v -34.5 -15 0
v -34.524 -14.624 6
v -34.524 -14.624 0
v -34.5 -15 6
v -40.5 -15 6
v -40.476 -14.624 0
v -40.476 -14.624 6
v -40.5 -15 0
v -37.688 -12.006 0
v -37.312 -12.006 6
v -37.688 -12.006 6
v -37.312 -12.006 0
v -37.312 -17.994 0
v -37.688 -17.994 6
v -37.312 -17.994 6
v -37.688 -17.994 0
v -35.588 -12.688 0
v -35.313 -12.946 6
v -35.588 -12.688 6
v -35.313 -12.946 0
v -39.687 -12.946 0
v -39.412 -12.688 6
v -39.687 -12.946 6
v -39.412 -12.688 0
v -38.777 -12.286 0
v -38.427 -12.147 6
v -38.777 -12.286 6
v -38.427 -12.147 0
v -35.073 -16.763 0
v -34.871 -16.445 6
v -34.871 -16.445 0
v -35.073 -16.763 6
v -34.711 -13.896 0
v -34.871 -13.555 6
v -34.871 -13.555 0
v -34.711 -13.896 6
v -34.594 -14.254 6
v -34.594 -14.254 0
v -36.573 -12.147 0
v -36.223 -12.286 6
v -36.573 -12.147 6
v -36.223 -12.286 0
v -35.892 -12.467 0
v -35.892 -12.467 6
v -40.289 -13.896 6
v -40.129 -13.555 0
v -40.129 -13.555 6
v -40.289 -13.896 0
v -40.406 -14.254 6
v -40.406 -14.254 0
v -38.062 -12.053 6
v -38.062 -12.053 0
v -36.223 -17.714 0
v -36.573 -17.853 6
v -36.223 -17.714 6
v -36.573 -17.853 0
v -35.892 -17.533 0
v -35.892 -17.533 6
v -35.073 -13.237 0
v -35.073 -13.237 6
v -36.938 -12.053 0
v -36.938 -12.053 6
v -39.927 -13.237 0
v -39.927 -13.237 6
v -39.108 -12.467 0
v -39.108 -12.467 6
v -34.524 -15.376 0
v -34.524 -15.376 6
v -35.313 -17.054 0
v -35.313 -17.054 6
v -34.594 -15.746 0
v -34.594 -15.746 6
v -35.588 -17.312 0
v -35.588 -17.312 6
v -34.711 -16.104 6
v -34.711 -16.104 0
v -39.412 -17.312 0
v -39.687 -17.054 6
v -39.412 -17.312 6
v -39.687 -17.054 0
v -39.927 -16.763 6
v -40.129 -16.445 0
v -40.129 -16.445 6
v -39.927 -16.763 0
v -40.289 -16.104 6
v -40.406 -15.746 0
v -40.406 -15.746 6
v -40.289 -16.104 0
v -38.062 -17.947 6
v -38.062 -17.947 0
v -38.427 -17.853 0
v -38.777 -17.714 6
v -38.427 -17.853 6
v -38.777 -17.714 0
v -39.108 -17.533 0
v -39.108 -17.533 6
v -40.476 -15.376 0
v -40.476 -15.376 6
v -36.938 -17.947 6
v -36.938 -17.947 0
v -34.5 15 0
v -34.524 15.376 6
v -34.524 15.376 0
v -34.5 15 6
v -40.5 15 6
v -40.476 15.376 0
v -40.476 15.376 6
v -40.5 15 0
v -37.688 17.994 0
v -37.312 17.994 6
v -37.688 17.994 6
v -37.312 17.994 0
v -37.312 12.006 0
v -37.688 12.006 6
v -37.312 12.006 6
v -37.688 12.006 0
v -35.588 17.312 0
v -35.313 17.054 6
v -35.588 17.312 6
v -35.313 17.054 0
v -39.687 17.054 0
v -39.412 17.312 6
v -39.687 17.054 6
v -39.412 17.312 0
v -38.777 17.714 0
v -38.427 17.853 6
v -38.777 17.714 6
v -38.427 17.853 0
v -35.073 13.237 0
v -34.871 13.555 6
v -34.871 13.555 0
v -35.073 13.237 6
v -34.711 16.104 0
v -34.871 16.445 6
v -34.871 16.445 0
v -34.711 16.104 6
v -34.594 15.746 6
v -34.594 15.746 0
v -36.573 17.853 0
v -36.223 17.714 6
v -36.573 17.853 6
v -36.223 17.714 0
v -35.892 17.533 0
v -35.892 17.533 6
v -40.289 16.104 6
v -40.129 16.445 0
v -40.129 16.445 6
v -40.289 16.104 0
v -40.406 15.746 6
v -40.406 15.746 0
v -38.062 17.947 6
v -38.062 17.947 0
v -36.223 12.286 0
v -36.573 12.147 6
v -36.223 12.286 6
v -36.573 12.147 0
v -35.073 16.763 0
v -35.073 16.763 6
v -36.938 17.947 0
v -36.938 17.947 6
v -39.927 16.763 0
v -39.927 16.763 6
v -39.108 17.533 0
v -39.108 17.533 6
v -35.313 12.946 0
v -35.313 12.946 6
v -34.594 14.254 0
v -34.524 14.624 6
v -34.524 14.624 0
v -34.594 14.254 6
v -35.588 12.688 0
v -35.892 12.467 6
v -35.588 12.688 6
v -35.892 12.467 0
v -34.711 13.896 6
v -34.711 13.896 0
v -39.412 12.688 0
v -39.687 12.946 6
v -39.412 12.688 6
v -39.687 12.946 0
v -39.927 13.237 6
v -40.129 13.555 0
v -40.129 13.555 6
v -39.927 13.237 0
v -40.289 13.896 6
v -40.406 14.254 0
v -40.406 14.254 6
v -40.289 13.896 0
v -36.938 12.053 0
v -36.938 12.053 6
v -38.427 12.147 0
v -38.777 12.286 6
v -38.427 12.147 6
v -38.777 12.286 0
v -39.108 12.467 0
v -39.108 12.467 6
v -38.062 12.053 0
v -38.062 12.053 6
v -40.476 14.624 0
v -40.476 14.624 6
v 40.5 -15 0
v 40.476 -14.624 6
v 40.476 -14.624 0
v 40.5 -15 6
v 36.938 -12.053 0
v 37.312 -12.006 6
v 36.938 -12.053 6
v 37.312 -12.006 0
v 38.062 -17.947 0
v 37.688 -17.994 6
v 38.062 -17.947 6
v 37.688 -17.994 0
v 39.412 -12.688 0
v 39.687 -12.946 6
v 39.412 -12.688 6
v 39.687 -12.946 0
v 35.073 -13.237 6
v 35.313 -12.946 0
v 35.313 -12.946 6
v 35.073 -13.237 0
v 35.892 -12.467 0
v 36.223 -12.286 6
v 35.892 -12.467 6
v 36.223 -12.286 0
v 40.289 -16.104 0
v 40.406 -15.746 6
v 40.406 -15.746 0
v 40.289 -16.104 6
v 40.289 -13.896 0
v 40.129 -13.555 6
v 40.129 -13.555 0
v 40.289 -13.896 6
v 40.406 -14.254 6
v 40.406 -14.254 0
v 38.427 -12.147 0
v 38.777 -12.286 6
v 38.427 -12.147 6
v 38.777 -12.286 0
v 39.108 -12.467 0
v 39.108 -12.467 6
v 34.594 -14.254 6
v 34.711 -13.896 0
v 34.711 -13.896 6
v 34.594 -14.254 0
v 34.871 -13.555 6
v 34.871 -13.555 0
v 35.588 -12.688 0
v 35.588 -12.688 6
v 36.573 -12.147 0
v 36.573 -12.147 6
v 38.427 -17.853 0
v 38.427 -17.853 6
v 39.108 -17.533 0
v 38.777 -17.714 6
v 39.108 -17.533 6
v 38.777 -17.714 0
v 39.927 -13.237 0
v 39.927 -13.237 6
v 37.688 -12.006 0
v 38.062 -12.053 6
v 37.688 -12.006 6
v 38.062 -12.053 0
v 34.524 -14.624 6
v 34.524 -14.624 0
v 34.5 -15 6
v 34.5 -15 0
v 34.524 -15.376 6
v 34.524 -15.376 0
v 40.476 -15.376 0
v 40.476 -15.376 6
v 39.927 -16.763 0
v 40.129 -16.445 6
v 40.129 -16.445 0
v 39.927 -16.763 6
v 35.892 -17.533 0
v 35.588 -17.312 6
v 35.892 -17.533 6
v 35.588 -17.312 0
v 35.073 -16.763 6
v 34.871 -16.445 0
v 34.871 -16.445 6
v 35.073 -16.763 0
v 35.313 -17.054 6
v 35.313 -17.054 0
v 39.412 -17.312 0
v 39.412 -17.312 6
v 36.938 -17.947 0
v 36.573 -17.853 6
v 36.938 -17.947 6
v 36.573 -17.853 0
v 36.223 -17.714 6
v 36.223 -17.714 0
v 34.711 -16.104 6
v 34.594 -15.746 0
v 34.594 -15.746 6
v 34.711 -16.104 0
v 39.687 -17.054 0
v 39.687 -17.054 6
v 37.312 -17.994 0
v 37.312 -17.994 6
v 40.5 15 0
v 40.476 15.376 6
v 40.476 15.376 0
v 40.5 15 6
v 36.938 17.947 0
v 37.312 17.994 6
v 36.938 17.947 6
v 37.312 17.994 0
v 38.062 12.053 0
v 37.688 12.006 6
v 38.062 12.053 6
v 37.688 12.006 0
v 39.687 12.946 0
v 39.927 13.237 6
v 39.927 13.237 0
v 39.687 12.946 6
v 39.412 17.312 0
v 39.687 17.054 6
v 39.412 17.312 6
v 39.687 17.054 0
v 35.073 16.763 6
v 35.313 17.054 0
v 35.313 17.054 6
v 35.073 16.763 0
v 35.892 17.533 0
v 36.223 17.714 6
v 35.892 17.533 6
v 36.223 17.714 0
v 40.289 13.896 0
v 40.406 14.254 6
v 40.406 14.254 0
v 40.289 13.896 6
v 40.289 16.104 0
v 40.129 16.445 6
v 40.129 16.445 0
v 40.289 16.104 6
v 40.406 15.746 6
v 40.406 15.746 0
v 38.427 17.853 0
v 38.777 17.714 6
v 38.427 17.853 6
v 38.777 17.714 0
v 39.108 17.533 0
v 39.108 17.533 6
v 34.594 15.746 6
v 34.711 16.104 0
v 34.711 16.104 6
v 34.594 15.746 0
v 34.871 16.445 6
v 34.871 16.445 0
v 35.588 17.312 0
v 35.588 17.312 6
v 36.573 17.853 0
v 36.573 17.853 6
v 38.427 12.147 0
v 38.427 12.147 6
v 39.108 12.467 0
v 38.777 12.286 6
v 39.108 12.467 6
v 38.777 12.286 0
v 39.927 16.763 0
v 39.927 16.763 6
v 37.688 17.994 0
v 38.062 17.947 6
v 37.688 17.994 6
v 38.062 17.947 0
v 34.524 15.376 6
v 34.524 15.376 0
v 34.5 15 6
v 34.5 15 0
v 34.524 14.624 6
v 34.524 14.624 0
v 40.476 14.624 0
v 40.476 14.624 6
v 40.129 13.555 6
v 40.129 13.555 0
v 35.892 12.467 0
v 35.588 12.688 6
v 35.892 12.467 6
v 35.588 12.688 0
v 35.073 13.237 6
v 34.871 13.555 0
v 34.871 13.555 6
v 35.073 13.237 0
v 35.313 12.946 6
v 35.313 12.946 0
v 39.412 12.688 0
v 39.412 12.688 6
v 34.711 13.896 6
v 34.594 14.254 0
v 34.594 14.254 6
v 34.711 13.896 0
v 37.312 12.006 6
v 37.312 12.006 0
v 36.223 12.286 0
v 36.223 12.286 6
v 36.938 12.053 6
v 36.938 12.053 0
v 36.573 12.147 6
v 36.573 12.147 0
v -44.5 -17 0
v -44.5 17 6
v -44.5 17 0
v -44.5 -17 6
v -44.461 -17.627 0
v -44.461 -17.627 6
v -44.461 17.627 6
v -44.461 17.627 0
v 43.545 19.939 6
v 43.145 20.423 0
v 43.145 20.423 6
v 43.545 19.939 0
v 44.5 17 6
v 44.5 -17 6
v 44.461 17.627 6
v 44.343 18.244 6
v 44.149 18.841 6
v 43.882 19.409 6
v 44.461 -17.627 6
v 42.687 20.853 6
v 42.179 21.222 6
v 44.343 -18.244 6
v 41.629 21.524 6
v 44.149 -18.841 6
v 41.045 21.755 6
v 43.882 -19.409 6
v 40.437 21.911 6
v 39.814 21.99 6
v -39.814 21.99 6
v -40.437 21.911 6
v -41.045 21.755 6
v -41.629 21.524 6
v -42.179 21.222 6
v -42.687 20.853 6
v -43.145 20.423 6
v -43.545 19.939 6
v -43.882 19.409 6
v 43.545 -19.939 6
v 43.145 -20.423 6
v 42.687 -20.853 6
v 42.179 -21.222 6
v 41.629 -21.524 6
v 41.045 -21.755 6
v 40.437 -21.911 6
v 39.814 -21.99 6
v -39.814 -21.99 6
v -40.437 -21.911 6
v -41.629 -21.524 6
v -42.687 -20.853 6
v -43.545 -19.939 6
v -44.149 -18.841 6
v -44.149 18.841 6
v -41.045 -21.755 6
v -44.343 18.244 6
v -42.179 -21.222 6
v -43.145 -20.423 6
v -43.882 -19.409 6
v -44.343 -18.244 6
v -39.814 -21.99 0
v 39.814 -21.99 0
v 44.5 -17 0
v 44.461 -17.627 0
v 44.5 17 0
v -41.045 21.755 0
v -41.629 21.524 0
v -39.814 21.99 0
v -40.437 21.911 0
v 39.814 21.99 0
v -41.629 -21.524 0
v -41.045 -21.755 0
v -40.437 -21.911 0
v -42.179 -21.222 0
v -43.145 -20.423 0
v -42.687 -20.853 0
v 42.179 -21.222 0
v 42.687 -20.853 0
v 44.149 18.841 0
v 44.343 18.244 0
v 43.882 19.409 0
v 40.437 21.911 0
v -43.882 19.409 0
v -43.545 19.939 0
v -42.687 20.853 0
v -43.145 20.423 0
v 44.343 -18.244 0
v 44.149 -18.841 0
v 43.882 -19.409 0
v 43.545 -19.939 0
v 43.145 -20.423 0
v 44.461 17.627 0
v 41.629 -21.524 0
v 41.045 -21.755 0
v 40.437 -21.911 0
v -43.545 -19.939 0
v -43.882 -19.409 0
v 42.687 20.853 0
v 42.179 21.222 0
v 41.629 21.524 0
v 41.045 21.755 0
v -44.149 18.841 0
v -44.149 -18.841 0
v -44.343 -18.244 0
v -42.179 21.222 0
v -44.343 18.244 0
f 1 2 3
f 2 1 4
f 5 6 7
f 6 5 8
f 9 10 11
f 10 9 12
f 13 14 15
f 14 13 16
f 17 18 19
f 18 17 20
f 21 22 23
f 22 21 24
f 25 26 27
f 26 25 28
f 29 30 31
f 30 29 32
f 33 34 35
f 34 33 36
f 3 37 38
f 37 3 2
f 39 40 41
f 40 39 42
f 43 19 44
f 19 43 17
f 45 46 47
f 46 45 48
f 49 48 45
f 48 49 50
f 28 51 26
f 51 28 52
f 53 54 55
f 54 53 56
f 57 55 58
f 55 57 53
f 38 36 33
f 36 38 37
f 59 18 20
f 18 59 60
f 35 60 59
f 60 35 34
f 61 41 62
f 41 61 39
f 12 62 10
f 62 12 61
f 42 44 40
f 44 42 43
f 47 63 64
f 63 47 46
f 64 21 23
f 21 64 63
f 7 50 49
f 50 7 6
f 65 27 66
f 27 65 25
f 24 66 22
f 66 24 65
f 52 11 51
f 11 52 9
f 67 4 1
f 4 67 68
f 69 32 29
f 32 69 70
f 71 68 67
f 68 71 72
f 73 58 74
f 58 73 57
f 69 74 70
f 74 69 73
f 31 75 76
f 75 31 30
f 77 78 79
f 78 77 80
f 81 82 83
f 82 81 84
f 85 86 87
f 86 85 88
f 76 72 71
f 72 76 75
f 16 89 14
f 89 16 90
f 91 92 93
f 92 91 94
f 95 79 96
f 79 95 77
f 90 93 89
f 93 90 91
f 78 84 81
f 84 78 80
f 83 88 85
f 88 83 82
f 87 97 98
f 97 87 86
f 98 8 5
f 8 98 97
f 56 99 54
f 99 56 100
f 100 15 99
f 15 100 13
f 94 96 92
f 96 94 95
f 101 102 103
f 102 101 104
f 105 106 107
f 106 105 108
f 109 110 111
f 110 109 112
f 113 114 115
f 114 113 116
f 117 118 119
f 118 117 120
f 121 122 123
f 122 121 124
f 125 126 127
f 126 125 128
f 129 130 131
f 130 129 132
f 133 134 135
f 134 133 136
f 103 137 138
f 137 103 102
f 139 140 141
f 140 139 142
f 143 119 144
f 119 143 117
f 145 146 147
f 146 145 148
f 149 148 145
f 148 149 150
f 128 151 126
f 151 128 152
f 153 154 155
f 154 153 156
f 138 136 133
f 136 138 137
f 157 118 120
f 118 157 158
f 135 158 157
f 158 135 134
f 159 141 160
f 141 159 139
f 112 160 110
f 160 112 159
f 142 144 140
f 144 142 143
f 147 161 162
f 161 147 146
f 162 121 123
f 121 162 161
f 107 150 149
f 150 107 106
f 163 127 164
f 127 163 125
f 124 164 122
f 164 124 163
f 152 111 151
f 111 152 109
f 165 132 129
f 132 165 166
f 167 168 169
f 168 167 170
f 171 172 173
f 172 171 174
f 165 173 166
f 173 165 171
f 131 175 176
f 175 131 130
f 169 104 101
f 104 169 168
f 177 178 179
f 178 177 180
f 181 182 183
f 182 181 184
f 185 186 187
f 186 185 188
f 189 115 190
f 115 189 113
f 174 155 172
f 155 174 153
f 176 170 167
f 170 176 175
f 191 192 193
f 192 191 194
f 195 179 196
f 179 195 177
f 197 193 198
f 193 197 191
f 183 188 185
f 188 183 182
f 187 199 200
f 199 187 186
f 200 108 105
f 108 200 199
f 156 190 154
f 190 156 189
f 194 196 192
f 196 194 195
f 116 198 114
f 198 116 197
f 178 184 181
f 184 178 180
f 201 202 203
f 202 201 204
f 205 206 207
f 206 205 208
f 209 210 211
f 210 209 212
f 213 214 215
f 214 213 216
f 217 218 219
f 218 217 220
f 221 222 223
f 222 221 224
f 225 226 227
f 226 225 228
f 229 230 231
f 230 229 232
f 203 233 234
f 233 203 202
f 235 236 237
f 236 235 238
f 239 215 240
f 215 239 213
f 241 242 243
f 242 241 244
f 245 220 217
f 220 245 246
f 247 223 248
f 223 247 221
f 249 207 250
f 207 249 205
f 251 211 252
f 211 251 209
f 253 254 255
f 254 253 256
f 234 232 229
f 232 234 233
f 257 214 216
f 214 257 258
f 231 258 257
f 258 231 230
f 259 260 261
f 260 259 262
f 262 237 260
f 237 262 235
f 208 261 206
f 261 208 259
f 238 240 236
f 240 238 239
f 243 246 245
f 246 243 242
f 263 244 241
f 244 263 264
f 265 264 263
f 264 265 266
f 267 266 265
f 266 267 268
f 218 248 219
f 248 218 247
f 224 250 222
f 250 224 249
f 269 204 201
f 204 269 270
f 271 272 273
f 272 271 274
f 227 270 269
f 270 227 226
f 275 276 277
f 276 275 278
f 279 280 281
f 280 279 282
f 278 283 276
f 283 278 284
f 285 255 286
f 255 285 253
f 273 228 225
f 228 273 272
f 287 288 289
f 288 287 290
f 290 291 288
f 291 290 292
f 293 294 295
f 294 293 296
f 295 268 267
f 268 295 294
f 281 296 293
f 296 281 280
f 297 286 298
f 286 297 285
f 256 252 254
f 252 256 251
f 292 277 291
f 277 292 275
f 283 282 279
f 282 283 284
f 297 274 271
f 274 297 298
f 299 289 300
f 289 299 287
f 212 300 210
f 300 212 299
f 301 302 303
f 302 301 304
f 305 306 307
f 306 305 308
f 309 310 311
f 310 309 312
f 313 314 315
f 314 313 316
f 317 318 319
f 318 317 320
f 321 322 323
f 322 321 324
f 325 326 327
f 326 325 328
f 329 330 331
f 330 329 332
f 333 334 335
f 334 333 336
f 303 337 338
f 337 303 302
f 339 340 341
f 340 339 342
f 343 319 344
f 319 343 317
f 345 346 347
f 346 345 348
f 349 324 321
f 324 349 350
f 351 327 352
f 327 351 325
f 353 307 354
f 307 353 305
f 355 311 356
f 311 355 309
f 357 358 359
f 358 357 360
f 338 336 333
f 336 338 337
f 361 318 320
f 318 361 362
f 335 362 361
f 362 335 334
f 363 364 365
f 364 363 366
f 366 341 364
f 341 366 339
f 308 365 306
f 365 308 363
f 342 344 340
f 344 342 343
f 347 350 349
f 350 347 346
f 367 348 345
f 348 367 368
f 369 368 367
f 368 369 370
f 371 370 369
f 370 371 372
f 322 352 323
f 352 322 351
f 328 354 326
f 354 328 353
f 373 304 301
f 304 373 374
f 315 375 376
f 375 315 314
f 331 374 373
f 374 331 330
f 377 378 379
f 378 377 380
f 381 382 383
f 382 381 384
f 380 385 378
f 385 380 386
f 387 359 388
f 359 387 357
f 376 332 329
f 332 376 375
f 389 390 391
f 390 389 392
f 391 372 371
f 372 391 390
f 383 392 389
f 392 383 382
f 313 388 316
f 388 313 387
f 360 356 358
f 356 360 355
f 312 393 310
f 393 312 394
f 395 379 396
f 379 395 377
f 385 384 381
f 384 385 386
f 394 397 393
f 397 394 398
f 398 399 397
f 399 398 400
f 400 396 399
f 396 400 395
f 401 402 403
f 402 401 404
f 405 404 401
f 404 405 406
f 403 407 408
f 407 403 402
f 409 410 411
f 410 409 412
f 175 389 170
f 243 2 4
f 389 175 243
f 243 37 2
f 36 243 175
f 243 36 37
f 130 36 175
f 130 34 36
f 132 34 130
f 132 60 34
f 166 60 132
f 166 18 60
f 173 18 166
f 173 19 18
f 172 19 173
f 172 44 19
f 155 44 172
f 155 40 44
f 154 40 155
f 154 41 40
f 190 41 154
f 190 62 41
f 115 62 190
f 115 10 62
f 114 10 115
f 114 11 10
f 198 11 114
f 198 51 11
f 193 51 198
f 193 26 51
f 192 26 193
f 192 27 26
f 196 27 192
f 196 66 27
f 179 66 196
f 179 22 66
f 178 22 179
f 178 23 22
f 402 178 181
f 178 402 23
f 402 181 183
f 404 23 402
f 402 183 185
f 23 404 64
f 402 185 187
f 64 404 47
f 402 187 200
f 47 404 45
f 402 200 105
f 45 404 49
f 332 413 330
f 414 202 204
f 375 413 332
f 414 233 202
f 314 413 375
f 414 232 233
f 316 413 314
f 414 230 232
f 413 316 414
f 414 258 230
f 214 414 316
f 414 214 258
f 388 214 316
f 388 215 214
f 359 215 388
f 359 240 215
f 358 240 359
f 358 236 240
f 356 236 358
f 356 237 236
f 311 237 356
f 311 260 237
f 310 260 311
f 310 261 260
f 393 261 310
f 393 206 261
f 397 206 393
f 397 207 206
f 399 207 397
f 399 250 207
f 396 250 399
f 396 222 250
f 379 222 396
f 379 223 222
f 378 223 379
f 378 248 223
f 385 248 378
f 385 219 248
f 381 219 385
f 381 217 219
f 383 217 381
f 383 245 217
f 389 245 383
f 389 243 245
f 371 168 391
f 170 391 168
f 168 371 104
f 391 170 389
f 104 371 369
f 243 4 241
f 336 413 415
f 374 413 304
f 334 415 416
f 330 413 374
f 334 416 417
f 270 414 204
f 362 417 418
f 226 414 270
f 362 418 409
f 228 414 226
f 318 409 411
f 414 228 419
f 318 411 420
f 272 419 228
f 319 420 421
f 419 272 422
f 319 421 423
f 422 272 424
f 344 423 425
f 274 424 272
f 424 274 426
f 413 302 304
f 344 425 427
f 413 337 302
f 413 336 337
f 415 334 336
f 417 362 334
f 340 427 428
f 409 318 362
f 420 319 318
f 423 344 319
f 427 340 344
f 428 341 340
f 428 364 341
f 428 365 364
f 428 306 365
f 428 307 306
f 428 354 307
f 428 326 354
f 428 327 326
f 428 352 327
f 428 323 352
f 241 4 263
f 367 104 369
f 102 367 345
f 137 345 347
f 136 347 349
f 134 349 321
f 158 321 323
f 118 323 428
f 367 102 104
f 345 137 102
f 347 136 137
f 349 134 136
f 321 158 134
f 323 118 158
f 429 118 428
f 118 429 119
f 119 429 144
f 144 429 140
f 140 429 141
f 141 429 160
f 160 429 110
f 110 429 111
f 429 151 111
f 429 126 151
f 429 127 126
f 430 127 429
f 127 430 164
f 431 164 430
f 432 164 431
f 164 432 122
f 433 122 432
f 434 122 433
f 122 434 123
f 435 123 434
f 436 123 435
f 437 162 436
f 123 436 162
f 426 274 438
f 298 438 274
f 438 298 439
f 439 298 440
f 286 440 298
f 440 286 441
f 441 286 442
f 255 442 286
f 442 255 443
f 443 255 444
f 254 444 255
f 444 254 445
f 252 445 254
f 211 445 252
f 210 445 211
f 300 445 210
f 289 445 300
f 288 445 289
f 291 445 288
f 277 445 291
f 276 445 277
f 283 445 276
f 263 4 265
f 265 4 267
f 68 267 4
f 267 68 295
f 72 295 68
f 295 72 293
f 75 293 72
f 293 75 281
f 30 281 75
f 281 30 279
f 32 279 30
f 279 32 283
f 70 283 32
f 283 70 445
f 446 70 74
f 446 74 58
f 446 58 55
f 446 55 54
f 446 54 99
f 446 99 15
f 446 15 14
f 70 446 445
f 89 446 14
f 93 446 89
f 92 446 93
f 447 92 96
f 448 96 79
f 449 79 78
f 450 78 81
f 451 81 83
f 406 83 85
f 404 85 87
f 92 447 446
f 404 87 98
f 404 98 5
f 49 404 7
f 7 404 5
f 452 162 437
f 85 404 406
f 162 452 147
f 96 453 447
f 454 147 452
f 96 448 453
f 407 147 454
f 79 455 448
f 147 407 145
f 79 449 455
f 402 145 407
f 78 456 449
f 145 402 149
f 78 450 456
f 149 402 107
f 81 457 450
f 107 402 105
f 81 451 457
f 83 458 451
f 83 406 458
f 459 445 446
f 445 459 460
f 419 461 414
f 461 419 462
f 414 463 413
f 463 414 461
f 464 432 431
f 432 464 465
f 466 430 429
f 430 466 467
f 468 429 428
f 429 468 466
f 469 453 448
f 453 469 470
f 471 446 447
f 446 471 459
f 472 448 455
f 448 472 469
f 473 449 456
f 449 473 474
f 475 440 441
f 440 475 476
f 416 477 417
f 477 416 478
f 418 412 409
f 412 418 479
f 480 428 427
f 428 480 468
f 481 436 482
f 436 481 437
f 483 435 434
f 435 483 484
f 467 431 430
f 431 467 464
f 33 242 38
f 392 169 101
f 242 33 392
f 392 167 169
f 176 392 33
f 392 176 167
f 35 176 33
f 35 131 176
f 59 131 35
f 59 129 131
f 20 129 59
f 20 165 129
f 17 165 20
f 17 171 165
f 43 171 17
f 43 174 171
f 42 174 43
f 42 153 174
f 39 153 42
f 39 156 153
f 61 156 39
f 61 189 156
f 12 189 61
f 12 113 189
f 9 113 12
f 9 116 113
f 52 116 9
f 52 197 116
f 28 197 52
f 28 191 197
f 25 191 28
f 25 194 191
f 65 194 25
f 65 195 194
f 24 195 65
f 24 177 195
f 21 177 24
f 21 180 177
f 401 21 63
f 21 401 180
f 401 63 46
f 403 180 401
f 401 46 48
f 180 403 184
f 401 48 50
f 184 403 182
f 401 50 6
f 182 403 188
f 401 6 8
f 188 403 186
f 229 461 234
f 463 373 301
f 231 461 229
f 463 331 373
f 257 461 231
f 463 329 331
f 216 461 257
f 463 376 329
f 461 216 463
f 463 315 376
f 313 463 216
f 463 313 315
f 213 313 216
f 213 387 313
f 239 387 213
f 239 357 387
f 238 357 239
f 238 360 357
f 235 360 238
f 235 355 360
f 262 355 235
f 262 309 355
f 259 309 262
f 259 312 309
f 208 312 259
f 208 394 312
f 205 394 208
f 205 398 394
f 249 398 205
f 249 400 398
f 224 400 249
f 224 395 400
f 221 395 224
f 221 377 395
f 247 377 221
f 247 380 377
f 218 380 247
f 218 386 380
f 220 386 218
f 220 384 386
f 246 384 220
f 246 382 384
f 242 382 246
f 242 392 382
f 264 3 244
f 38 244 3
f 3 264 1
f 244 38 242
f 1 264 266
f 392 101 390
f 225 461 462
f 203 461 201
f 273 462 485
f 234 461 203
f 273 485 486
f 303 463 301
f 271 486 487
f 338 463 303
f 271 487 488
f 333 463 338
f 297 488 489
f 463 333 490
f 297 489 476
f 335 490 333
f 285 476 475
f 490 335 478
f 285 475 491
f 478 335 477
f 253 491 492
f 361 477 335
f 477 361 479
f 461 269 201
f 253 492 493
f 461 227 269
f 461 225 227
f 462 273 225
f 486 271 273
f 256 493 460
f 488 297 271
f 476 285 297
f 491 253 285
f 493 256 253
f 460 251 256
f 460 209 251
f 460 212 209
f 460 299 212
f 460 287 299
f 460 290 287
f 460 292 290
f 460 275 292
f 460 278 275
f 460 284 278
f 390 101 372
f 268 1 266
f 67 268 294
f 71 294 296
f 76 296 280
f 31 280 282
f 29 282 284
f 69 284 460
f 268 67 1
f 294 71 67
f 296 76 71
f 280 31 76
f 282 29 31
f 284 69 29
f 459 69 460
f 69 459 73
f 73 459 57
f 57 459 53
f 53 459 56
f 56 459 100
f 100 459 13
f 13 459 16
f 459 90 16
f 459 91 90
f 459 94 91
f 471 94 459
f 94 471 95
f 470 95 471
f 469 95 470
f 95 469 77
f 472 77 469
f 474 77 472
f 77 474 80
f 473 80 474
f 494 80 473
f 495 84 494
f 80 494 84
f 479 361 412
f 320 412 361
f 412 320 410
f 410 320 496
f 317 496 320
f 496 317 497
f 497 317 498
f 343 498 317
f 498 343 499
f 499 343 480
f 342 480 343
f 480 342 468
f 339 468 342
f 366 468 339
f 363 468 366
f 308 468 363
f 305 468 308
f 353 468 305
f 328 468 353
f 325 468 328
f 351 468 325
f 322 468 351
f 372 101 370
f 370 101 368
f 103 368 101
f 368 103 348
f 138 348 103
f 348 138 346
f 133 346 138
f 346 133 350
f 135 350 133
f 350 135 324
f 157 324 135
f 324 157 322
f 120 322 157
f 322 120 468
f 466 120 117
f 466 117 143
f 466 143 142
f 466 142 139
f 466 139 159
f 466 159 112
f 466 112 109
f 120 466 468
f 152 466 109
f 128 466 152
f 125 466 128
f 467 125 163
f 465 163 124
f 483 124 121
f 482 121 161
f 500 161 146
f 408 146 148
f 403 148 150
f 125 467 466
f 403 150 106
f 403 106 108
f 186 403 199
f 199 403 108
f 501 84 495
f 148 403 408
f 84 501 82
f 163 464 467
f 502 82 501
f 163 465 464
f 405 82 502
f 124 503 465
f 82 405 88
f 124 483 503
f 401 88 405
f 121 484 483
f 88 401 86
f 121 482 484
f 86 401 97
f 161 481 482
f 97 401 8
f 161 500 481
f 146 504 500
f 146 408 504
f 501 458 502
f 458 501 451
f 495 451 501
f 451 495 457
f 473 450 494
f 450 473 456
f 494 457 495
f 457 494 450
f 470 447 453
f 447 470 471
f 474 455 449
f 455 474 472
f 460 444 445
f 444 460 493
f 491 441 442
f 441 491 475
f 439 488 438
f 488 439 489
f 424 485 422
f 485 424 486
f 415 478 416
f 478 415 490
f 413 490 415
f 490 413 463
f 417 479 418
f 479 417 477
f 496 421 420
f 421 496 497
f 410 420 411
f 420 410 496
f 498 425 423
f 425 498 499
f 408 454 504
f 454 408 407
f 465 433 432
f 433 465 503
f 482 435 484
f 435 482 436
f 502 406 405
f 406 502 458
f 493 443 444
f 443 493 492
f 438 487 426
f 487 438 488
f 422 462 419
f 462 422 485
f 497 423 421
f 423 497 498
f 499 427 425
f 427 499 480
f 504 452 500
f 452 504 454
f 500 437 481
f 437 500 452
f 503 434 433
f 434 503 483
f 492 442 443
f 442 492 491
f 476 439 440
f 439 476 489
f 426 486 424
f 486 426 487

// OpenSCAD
$fn = 50;


difference() {
	union() {
		hull() {
			translate(v = [-39.5000000000, 17.0000000000, 0]) {
				cylinder(h = 6, r = 5);
			}
			translate(v = [39.5000000000, 17.0000000000, 0]) {
				cylinder(h = 6, r = 5);
			}
			translate(v = [-39.5000000000, -17.0000000000, 0]) {
				cylinder(h = 6, r = 5);
			}
			translate(v = [39.5000000000, -17.0000000000, 0]) {
				cylinder(h = 6, r = 5);
			}
		}
	}
	union() {
		translate(v = [-37.5000000000, -15.0000000000, -100.0000000000]) {
			cylinder(h = 200, r = 3.0000000000);
		}
		translate(v = [-37.5000000000, 15.0000000000, -100.0000000000]) {
			cylinder(h = 200, r = 3.0000000000);
		}
		translate(v = [37.5000000000, -15.0000000000, -100.0000000000]) {
			cylinder(h = 200, r = 3.0000000000);
		}
		translate(v = [37.5000000000, 15.0000000000, -100.0000000000]) {
			cylinder(h = 200, r = 3.0000000000);
		}
	}
}
